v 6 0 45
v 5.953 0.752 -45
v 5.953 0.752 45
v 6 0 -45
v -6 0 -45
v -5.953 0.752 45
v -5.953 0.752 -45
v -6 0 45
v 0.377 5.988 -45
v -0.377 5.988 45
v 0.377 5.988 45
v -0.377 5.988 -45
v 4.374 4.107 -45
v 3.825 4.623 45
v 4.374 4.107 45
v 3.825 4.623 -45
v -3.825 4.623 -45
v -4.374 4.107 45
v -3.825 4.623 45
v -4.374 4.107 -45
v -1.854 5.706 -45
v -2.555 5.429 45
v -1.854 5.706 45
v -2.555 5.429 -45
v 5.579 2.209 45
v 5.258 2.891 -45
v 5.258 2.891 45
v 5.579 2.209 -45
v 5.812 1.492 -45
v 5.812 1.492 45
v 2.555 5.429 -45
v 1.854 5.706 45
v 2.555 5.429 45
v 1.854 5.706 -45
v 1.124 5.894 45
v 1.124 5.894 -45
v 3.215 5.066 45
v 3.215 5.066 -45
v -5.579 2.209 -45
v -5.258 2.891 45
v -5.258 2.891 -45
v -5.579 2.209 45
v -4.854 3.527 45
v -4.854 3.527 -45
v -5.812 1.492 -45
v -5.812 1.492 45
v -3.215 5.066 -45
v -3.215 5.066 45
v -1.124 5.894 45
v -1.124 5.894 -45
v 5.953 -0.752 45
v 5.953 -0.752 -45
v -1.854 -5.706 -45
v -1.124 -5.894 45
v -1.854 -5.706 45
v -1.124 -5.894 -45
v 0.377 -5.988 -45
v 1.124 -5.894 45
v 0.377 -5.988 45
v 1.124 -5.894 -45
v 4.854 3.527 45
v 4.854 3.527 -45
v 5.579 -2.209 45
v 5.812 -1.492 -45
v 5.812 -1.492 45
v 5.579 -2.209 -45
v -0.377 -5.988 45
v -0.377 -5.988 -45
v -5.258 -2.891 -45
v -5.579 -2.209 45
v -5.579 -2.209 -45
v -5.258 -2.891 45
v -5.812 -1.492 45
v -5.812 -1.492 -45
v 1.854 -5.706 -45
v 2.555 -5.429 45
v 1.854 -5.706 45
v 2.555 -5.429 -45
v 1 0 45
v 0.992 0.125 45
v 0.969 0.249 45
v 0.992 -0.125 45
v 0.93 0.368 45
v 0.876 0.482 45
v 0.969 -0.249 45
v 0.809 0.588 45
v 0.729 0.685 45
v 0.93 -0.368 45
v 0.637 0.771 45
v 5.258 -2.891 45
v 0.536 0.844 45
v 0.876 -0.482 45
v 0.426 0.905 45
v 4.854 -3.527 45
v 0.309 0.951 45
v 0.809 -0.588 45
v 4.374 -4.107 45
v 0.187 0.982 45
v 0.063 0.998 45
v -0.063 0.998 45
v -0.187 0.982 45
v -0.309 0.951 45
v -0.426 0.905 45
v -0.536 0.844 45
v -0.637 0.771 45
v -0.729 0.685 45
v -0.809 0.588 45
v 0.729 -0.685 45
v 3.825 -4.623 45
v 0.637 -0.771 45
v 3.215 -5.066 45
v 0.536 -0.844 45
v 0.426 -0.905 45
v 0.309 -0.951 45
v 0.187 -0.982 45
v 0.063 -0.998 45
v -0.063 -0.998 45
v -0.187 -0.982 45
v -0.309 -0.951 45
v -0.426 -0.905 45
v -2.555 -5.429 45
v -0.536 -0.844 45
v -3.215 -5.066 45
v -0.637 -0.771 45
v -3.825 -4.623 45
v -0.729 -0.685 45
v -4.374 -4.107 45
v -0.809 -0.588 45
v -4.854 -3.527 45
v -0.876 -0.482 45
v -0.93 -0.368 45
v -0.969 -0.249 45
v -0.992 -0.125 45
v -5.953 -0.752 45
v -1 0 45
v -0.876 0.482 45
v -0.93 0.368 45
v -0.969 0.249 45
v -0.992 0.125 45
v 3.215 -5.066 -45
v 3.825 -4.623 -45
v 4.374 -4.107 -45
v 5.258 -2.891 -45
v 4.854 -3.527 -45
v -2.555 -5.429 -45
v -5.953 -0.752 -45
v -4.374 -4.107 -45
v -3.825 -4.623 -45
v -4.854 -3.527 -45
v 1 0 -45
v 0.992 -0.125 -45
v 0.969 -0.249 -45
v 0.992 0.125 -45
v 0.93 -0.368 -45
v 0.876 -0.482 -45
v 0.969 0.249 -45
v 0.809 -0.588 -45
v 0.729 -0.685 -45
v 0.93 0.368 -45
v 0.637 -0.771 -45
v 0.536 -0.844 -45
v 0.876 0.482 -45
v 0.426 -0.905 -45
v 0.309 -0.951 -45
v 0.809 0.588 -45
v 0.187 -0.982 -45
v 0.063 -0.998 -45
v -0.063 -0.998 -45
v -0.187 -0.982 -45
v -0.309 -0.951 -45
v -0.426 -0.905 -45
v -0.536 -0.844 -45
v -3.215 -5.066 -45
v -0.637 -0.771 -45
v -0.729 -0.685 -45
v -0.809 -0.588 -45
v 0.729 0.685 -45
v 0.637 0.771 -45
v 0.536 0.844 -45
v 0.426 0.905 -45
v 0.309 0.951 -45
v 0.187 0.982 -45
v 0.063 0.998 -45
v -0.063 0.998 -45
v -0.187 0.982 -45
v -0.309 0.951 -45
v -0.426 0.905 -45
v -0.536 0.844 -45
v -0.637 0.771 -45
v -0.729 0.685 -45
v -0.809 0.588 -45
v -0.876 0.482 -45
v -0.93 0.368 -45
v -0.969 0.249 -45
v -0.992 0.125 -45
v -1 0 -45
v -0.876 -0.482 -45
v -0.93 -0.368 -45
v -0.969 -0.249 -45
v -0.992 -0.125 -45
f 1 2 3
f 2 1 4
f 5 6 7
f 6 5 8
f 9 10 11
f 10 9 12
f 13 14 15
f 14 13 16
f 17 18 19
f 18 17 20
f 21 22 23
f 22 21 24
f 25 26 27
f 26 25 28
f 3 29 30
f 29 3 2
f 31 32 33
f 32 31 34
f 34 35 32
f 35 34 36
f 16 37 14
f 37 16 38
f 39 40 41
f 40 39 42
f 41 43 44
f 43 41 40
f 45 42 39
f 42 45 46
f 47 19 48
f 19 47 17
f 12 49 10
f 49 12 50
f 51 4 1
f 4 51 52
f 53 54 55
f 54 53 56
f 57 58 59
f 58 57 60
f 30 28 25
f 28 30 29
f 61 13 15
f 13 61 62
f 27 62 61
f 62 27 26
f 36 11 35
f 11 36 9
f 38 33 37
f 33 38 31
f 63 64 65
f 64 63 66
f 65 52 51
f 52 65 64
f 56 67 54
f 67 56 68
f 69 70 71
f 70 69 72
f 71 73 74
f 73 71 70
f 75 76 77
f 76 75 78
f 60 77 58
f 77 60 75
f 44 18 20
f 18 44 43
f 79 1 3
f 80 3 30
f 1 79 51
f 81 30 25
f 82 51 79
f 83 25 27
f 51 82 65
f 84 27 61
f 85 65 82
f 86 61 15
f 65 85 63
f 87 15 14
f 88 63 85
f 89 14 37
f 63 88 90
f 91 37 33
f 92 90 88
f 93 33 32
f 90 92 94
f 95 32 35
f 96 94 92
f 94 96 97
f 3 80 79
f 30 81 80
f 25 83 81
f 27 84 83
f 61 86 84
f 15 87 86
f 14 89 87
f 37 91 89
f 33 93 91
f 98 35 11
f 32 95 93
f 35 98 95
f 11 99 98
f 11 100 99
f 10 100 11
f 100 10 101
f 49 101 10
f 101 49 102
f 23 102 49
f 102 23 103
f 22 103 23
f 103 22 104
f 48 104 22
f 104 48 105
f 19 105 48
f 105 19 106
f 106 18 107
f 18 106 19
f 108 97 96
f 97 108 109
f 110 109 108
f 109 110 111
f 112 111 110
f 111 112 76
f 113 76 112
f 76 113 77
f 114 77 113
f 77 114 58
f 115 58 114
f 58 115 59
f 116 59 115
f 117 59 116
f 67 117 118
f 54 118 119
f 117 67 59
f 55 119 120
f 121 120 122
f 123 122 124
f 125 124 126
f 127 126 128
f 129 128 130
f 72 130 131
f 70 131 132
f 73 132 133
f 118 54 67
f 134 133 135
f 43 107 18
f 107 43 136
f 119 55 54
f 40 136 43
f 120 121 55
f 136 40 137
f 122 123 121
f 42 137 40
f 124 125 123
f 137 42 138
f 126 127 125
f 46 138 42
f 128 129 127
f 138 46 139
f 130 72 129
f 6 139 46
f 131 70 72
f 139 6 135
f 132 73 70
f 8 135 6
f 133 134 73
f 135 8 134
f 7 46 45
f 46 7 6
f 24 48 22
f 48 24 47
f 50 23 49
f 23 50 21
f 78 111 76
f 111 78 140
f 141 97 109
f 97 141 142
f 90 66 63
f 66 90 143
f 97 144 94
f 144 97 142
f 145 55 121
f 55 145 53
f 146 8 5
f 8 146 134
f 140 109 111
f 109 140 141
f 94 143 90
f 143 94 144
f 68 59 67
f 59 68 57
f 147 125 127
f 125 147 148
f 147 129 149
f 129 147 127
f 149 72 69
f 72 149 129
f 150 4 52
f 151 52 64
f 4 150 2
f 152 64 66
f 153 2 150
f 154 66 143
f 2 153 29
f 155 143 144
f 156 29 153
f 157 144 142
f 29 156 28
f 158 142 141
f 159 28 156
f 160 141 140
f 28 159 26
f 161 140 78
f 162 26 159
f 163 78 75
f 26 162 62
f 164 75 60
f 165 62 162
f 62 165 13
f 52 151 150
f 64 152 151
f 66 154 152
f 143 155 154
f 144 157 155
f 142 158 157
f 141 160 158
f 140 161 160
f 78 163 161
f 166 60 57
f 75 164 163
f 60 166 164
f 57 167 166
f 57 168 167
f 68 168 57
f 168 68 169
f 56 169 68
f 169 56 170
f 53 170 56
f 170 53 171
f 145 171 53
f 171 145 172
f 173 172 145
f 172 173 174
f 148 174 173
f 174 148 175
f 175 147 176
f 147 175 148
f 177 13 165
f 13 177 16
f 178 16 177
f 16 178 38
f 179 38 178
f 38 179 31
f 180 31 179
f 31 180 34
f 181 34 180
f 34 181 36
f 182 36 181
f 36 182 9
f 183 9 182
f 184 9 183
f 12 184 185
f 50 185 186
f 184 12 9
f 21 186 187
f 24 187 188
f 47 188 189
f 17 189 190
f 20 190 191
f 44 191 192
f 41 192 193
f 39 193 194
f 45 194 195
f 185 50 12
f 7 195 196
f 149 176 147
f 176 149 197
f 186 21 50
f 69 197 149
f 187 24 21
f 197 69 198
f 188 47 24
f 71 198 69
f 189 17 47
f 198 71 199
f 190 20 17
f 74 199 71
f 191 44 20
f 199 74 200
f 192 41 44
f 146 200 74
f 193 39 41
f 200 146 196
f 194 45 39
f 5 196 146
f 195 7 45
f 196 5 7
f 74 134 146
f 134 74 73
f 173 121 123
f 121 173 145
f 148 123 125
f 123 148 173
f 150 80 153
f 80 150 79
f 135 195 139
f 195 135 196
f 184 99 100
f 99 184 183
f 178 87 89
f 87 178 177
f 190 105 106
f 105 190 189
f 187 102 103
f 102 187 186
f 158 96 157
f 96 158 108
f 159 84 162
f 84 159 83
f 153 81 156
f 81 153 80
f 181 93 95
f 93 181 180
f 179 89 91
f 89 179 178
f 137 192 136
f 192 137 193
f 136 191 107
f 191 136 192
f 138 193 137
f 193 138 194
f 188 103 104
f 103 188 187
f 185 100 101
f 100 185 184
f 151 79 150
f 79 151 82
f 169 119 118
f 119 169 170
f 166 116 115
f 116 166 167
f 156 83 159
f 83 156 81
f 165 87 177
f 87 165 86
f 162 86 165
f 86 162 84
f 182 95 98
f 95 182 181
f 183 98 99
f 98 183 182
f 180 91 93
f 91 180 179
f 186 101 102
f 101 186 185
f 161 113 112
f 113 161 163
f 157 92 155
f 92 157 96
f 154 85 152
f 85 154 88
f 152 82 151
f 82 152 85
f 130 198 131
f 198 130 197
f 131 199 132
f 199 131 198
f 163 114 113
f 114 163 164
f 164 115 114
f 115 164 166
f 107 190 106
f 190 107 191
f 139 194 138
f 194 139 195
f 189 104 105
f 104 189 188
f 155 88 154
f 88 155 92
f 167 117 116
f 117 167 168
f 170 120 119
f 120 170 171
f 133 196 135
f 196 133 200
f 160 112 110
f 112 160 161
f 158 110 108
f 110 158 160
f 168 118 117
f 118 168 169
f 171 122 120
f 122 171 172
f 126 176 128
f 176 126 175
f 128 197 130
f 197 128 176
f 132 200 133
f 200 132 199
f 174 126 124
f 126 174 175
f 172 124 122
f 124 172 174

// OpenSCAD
$fn = 50;


difference() {
	union() {
		translate(v = [0, 0, -45.0000000000]) {
			cylinder(h = 90, r = 6.0000000000);
		}
	}
	union() {
		translate(v = [0, 0, -100.0000000000]) {
			cylinder(h = 200, r = 1.0000000000);
		}
	}
}
